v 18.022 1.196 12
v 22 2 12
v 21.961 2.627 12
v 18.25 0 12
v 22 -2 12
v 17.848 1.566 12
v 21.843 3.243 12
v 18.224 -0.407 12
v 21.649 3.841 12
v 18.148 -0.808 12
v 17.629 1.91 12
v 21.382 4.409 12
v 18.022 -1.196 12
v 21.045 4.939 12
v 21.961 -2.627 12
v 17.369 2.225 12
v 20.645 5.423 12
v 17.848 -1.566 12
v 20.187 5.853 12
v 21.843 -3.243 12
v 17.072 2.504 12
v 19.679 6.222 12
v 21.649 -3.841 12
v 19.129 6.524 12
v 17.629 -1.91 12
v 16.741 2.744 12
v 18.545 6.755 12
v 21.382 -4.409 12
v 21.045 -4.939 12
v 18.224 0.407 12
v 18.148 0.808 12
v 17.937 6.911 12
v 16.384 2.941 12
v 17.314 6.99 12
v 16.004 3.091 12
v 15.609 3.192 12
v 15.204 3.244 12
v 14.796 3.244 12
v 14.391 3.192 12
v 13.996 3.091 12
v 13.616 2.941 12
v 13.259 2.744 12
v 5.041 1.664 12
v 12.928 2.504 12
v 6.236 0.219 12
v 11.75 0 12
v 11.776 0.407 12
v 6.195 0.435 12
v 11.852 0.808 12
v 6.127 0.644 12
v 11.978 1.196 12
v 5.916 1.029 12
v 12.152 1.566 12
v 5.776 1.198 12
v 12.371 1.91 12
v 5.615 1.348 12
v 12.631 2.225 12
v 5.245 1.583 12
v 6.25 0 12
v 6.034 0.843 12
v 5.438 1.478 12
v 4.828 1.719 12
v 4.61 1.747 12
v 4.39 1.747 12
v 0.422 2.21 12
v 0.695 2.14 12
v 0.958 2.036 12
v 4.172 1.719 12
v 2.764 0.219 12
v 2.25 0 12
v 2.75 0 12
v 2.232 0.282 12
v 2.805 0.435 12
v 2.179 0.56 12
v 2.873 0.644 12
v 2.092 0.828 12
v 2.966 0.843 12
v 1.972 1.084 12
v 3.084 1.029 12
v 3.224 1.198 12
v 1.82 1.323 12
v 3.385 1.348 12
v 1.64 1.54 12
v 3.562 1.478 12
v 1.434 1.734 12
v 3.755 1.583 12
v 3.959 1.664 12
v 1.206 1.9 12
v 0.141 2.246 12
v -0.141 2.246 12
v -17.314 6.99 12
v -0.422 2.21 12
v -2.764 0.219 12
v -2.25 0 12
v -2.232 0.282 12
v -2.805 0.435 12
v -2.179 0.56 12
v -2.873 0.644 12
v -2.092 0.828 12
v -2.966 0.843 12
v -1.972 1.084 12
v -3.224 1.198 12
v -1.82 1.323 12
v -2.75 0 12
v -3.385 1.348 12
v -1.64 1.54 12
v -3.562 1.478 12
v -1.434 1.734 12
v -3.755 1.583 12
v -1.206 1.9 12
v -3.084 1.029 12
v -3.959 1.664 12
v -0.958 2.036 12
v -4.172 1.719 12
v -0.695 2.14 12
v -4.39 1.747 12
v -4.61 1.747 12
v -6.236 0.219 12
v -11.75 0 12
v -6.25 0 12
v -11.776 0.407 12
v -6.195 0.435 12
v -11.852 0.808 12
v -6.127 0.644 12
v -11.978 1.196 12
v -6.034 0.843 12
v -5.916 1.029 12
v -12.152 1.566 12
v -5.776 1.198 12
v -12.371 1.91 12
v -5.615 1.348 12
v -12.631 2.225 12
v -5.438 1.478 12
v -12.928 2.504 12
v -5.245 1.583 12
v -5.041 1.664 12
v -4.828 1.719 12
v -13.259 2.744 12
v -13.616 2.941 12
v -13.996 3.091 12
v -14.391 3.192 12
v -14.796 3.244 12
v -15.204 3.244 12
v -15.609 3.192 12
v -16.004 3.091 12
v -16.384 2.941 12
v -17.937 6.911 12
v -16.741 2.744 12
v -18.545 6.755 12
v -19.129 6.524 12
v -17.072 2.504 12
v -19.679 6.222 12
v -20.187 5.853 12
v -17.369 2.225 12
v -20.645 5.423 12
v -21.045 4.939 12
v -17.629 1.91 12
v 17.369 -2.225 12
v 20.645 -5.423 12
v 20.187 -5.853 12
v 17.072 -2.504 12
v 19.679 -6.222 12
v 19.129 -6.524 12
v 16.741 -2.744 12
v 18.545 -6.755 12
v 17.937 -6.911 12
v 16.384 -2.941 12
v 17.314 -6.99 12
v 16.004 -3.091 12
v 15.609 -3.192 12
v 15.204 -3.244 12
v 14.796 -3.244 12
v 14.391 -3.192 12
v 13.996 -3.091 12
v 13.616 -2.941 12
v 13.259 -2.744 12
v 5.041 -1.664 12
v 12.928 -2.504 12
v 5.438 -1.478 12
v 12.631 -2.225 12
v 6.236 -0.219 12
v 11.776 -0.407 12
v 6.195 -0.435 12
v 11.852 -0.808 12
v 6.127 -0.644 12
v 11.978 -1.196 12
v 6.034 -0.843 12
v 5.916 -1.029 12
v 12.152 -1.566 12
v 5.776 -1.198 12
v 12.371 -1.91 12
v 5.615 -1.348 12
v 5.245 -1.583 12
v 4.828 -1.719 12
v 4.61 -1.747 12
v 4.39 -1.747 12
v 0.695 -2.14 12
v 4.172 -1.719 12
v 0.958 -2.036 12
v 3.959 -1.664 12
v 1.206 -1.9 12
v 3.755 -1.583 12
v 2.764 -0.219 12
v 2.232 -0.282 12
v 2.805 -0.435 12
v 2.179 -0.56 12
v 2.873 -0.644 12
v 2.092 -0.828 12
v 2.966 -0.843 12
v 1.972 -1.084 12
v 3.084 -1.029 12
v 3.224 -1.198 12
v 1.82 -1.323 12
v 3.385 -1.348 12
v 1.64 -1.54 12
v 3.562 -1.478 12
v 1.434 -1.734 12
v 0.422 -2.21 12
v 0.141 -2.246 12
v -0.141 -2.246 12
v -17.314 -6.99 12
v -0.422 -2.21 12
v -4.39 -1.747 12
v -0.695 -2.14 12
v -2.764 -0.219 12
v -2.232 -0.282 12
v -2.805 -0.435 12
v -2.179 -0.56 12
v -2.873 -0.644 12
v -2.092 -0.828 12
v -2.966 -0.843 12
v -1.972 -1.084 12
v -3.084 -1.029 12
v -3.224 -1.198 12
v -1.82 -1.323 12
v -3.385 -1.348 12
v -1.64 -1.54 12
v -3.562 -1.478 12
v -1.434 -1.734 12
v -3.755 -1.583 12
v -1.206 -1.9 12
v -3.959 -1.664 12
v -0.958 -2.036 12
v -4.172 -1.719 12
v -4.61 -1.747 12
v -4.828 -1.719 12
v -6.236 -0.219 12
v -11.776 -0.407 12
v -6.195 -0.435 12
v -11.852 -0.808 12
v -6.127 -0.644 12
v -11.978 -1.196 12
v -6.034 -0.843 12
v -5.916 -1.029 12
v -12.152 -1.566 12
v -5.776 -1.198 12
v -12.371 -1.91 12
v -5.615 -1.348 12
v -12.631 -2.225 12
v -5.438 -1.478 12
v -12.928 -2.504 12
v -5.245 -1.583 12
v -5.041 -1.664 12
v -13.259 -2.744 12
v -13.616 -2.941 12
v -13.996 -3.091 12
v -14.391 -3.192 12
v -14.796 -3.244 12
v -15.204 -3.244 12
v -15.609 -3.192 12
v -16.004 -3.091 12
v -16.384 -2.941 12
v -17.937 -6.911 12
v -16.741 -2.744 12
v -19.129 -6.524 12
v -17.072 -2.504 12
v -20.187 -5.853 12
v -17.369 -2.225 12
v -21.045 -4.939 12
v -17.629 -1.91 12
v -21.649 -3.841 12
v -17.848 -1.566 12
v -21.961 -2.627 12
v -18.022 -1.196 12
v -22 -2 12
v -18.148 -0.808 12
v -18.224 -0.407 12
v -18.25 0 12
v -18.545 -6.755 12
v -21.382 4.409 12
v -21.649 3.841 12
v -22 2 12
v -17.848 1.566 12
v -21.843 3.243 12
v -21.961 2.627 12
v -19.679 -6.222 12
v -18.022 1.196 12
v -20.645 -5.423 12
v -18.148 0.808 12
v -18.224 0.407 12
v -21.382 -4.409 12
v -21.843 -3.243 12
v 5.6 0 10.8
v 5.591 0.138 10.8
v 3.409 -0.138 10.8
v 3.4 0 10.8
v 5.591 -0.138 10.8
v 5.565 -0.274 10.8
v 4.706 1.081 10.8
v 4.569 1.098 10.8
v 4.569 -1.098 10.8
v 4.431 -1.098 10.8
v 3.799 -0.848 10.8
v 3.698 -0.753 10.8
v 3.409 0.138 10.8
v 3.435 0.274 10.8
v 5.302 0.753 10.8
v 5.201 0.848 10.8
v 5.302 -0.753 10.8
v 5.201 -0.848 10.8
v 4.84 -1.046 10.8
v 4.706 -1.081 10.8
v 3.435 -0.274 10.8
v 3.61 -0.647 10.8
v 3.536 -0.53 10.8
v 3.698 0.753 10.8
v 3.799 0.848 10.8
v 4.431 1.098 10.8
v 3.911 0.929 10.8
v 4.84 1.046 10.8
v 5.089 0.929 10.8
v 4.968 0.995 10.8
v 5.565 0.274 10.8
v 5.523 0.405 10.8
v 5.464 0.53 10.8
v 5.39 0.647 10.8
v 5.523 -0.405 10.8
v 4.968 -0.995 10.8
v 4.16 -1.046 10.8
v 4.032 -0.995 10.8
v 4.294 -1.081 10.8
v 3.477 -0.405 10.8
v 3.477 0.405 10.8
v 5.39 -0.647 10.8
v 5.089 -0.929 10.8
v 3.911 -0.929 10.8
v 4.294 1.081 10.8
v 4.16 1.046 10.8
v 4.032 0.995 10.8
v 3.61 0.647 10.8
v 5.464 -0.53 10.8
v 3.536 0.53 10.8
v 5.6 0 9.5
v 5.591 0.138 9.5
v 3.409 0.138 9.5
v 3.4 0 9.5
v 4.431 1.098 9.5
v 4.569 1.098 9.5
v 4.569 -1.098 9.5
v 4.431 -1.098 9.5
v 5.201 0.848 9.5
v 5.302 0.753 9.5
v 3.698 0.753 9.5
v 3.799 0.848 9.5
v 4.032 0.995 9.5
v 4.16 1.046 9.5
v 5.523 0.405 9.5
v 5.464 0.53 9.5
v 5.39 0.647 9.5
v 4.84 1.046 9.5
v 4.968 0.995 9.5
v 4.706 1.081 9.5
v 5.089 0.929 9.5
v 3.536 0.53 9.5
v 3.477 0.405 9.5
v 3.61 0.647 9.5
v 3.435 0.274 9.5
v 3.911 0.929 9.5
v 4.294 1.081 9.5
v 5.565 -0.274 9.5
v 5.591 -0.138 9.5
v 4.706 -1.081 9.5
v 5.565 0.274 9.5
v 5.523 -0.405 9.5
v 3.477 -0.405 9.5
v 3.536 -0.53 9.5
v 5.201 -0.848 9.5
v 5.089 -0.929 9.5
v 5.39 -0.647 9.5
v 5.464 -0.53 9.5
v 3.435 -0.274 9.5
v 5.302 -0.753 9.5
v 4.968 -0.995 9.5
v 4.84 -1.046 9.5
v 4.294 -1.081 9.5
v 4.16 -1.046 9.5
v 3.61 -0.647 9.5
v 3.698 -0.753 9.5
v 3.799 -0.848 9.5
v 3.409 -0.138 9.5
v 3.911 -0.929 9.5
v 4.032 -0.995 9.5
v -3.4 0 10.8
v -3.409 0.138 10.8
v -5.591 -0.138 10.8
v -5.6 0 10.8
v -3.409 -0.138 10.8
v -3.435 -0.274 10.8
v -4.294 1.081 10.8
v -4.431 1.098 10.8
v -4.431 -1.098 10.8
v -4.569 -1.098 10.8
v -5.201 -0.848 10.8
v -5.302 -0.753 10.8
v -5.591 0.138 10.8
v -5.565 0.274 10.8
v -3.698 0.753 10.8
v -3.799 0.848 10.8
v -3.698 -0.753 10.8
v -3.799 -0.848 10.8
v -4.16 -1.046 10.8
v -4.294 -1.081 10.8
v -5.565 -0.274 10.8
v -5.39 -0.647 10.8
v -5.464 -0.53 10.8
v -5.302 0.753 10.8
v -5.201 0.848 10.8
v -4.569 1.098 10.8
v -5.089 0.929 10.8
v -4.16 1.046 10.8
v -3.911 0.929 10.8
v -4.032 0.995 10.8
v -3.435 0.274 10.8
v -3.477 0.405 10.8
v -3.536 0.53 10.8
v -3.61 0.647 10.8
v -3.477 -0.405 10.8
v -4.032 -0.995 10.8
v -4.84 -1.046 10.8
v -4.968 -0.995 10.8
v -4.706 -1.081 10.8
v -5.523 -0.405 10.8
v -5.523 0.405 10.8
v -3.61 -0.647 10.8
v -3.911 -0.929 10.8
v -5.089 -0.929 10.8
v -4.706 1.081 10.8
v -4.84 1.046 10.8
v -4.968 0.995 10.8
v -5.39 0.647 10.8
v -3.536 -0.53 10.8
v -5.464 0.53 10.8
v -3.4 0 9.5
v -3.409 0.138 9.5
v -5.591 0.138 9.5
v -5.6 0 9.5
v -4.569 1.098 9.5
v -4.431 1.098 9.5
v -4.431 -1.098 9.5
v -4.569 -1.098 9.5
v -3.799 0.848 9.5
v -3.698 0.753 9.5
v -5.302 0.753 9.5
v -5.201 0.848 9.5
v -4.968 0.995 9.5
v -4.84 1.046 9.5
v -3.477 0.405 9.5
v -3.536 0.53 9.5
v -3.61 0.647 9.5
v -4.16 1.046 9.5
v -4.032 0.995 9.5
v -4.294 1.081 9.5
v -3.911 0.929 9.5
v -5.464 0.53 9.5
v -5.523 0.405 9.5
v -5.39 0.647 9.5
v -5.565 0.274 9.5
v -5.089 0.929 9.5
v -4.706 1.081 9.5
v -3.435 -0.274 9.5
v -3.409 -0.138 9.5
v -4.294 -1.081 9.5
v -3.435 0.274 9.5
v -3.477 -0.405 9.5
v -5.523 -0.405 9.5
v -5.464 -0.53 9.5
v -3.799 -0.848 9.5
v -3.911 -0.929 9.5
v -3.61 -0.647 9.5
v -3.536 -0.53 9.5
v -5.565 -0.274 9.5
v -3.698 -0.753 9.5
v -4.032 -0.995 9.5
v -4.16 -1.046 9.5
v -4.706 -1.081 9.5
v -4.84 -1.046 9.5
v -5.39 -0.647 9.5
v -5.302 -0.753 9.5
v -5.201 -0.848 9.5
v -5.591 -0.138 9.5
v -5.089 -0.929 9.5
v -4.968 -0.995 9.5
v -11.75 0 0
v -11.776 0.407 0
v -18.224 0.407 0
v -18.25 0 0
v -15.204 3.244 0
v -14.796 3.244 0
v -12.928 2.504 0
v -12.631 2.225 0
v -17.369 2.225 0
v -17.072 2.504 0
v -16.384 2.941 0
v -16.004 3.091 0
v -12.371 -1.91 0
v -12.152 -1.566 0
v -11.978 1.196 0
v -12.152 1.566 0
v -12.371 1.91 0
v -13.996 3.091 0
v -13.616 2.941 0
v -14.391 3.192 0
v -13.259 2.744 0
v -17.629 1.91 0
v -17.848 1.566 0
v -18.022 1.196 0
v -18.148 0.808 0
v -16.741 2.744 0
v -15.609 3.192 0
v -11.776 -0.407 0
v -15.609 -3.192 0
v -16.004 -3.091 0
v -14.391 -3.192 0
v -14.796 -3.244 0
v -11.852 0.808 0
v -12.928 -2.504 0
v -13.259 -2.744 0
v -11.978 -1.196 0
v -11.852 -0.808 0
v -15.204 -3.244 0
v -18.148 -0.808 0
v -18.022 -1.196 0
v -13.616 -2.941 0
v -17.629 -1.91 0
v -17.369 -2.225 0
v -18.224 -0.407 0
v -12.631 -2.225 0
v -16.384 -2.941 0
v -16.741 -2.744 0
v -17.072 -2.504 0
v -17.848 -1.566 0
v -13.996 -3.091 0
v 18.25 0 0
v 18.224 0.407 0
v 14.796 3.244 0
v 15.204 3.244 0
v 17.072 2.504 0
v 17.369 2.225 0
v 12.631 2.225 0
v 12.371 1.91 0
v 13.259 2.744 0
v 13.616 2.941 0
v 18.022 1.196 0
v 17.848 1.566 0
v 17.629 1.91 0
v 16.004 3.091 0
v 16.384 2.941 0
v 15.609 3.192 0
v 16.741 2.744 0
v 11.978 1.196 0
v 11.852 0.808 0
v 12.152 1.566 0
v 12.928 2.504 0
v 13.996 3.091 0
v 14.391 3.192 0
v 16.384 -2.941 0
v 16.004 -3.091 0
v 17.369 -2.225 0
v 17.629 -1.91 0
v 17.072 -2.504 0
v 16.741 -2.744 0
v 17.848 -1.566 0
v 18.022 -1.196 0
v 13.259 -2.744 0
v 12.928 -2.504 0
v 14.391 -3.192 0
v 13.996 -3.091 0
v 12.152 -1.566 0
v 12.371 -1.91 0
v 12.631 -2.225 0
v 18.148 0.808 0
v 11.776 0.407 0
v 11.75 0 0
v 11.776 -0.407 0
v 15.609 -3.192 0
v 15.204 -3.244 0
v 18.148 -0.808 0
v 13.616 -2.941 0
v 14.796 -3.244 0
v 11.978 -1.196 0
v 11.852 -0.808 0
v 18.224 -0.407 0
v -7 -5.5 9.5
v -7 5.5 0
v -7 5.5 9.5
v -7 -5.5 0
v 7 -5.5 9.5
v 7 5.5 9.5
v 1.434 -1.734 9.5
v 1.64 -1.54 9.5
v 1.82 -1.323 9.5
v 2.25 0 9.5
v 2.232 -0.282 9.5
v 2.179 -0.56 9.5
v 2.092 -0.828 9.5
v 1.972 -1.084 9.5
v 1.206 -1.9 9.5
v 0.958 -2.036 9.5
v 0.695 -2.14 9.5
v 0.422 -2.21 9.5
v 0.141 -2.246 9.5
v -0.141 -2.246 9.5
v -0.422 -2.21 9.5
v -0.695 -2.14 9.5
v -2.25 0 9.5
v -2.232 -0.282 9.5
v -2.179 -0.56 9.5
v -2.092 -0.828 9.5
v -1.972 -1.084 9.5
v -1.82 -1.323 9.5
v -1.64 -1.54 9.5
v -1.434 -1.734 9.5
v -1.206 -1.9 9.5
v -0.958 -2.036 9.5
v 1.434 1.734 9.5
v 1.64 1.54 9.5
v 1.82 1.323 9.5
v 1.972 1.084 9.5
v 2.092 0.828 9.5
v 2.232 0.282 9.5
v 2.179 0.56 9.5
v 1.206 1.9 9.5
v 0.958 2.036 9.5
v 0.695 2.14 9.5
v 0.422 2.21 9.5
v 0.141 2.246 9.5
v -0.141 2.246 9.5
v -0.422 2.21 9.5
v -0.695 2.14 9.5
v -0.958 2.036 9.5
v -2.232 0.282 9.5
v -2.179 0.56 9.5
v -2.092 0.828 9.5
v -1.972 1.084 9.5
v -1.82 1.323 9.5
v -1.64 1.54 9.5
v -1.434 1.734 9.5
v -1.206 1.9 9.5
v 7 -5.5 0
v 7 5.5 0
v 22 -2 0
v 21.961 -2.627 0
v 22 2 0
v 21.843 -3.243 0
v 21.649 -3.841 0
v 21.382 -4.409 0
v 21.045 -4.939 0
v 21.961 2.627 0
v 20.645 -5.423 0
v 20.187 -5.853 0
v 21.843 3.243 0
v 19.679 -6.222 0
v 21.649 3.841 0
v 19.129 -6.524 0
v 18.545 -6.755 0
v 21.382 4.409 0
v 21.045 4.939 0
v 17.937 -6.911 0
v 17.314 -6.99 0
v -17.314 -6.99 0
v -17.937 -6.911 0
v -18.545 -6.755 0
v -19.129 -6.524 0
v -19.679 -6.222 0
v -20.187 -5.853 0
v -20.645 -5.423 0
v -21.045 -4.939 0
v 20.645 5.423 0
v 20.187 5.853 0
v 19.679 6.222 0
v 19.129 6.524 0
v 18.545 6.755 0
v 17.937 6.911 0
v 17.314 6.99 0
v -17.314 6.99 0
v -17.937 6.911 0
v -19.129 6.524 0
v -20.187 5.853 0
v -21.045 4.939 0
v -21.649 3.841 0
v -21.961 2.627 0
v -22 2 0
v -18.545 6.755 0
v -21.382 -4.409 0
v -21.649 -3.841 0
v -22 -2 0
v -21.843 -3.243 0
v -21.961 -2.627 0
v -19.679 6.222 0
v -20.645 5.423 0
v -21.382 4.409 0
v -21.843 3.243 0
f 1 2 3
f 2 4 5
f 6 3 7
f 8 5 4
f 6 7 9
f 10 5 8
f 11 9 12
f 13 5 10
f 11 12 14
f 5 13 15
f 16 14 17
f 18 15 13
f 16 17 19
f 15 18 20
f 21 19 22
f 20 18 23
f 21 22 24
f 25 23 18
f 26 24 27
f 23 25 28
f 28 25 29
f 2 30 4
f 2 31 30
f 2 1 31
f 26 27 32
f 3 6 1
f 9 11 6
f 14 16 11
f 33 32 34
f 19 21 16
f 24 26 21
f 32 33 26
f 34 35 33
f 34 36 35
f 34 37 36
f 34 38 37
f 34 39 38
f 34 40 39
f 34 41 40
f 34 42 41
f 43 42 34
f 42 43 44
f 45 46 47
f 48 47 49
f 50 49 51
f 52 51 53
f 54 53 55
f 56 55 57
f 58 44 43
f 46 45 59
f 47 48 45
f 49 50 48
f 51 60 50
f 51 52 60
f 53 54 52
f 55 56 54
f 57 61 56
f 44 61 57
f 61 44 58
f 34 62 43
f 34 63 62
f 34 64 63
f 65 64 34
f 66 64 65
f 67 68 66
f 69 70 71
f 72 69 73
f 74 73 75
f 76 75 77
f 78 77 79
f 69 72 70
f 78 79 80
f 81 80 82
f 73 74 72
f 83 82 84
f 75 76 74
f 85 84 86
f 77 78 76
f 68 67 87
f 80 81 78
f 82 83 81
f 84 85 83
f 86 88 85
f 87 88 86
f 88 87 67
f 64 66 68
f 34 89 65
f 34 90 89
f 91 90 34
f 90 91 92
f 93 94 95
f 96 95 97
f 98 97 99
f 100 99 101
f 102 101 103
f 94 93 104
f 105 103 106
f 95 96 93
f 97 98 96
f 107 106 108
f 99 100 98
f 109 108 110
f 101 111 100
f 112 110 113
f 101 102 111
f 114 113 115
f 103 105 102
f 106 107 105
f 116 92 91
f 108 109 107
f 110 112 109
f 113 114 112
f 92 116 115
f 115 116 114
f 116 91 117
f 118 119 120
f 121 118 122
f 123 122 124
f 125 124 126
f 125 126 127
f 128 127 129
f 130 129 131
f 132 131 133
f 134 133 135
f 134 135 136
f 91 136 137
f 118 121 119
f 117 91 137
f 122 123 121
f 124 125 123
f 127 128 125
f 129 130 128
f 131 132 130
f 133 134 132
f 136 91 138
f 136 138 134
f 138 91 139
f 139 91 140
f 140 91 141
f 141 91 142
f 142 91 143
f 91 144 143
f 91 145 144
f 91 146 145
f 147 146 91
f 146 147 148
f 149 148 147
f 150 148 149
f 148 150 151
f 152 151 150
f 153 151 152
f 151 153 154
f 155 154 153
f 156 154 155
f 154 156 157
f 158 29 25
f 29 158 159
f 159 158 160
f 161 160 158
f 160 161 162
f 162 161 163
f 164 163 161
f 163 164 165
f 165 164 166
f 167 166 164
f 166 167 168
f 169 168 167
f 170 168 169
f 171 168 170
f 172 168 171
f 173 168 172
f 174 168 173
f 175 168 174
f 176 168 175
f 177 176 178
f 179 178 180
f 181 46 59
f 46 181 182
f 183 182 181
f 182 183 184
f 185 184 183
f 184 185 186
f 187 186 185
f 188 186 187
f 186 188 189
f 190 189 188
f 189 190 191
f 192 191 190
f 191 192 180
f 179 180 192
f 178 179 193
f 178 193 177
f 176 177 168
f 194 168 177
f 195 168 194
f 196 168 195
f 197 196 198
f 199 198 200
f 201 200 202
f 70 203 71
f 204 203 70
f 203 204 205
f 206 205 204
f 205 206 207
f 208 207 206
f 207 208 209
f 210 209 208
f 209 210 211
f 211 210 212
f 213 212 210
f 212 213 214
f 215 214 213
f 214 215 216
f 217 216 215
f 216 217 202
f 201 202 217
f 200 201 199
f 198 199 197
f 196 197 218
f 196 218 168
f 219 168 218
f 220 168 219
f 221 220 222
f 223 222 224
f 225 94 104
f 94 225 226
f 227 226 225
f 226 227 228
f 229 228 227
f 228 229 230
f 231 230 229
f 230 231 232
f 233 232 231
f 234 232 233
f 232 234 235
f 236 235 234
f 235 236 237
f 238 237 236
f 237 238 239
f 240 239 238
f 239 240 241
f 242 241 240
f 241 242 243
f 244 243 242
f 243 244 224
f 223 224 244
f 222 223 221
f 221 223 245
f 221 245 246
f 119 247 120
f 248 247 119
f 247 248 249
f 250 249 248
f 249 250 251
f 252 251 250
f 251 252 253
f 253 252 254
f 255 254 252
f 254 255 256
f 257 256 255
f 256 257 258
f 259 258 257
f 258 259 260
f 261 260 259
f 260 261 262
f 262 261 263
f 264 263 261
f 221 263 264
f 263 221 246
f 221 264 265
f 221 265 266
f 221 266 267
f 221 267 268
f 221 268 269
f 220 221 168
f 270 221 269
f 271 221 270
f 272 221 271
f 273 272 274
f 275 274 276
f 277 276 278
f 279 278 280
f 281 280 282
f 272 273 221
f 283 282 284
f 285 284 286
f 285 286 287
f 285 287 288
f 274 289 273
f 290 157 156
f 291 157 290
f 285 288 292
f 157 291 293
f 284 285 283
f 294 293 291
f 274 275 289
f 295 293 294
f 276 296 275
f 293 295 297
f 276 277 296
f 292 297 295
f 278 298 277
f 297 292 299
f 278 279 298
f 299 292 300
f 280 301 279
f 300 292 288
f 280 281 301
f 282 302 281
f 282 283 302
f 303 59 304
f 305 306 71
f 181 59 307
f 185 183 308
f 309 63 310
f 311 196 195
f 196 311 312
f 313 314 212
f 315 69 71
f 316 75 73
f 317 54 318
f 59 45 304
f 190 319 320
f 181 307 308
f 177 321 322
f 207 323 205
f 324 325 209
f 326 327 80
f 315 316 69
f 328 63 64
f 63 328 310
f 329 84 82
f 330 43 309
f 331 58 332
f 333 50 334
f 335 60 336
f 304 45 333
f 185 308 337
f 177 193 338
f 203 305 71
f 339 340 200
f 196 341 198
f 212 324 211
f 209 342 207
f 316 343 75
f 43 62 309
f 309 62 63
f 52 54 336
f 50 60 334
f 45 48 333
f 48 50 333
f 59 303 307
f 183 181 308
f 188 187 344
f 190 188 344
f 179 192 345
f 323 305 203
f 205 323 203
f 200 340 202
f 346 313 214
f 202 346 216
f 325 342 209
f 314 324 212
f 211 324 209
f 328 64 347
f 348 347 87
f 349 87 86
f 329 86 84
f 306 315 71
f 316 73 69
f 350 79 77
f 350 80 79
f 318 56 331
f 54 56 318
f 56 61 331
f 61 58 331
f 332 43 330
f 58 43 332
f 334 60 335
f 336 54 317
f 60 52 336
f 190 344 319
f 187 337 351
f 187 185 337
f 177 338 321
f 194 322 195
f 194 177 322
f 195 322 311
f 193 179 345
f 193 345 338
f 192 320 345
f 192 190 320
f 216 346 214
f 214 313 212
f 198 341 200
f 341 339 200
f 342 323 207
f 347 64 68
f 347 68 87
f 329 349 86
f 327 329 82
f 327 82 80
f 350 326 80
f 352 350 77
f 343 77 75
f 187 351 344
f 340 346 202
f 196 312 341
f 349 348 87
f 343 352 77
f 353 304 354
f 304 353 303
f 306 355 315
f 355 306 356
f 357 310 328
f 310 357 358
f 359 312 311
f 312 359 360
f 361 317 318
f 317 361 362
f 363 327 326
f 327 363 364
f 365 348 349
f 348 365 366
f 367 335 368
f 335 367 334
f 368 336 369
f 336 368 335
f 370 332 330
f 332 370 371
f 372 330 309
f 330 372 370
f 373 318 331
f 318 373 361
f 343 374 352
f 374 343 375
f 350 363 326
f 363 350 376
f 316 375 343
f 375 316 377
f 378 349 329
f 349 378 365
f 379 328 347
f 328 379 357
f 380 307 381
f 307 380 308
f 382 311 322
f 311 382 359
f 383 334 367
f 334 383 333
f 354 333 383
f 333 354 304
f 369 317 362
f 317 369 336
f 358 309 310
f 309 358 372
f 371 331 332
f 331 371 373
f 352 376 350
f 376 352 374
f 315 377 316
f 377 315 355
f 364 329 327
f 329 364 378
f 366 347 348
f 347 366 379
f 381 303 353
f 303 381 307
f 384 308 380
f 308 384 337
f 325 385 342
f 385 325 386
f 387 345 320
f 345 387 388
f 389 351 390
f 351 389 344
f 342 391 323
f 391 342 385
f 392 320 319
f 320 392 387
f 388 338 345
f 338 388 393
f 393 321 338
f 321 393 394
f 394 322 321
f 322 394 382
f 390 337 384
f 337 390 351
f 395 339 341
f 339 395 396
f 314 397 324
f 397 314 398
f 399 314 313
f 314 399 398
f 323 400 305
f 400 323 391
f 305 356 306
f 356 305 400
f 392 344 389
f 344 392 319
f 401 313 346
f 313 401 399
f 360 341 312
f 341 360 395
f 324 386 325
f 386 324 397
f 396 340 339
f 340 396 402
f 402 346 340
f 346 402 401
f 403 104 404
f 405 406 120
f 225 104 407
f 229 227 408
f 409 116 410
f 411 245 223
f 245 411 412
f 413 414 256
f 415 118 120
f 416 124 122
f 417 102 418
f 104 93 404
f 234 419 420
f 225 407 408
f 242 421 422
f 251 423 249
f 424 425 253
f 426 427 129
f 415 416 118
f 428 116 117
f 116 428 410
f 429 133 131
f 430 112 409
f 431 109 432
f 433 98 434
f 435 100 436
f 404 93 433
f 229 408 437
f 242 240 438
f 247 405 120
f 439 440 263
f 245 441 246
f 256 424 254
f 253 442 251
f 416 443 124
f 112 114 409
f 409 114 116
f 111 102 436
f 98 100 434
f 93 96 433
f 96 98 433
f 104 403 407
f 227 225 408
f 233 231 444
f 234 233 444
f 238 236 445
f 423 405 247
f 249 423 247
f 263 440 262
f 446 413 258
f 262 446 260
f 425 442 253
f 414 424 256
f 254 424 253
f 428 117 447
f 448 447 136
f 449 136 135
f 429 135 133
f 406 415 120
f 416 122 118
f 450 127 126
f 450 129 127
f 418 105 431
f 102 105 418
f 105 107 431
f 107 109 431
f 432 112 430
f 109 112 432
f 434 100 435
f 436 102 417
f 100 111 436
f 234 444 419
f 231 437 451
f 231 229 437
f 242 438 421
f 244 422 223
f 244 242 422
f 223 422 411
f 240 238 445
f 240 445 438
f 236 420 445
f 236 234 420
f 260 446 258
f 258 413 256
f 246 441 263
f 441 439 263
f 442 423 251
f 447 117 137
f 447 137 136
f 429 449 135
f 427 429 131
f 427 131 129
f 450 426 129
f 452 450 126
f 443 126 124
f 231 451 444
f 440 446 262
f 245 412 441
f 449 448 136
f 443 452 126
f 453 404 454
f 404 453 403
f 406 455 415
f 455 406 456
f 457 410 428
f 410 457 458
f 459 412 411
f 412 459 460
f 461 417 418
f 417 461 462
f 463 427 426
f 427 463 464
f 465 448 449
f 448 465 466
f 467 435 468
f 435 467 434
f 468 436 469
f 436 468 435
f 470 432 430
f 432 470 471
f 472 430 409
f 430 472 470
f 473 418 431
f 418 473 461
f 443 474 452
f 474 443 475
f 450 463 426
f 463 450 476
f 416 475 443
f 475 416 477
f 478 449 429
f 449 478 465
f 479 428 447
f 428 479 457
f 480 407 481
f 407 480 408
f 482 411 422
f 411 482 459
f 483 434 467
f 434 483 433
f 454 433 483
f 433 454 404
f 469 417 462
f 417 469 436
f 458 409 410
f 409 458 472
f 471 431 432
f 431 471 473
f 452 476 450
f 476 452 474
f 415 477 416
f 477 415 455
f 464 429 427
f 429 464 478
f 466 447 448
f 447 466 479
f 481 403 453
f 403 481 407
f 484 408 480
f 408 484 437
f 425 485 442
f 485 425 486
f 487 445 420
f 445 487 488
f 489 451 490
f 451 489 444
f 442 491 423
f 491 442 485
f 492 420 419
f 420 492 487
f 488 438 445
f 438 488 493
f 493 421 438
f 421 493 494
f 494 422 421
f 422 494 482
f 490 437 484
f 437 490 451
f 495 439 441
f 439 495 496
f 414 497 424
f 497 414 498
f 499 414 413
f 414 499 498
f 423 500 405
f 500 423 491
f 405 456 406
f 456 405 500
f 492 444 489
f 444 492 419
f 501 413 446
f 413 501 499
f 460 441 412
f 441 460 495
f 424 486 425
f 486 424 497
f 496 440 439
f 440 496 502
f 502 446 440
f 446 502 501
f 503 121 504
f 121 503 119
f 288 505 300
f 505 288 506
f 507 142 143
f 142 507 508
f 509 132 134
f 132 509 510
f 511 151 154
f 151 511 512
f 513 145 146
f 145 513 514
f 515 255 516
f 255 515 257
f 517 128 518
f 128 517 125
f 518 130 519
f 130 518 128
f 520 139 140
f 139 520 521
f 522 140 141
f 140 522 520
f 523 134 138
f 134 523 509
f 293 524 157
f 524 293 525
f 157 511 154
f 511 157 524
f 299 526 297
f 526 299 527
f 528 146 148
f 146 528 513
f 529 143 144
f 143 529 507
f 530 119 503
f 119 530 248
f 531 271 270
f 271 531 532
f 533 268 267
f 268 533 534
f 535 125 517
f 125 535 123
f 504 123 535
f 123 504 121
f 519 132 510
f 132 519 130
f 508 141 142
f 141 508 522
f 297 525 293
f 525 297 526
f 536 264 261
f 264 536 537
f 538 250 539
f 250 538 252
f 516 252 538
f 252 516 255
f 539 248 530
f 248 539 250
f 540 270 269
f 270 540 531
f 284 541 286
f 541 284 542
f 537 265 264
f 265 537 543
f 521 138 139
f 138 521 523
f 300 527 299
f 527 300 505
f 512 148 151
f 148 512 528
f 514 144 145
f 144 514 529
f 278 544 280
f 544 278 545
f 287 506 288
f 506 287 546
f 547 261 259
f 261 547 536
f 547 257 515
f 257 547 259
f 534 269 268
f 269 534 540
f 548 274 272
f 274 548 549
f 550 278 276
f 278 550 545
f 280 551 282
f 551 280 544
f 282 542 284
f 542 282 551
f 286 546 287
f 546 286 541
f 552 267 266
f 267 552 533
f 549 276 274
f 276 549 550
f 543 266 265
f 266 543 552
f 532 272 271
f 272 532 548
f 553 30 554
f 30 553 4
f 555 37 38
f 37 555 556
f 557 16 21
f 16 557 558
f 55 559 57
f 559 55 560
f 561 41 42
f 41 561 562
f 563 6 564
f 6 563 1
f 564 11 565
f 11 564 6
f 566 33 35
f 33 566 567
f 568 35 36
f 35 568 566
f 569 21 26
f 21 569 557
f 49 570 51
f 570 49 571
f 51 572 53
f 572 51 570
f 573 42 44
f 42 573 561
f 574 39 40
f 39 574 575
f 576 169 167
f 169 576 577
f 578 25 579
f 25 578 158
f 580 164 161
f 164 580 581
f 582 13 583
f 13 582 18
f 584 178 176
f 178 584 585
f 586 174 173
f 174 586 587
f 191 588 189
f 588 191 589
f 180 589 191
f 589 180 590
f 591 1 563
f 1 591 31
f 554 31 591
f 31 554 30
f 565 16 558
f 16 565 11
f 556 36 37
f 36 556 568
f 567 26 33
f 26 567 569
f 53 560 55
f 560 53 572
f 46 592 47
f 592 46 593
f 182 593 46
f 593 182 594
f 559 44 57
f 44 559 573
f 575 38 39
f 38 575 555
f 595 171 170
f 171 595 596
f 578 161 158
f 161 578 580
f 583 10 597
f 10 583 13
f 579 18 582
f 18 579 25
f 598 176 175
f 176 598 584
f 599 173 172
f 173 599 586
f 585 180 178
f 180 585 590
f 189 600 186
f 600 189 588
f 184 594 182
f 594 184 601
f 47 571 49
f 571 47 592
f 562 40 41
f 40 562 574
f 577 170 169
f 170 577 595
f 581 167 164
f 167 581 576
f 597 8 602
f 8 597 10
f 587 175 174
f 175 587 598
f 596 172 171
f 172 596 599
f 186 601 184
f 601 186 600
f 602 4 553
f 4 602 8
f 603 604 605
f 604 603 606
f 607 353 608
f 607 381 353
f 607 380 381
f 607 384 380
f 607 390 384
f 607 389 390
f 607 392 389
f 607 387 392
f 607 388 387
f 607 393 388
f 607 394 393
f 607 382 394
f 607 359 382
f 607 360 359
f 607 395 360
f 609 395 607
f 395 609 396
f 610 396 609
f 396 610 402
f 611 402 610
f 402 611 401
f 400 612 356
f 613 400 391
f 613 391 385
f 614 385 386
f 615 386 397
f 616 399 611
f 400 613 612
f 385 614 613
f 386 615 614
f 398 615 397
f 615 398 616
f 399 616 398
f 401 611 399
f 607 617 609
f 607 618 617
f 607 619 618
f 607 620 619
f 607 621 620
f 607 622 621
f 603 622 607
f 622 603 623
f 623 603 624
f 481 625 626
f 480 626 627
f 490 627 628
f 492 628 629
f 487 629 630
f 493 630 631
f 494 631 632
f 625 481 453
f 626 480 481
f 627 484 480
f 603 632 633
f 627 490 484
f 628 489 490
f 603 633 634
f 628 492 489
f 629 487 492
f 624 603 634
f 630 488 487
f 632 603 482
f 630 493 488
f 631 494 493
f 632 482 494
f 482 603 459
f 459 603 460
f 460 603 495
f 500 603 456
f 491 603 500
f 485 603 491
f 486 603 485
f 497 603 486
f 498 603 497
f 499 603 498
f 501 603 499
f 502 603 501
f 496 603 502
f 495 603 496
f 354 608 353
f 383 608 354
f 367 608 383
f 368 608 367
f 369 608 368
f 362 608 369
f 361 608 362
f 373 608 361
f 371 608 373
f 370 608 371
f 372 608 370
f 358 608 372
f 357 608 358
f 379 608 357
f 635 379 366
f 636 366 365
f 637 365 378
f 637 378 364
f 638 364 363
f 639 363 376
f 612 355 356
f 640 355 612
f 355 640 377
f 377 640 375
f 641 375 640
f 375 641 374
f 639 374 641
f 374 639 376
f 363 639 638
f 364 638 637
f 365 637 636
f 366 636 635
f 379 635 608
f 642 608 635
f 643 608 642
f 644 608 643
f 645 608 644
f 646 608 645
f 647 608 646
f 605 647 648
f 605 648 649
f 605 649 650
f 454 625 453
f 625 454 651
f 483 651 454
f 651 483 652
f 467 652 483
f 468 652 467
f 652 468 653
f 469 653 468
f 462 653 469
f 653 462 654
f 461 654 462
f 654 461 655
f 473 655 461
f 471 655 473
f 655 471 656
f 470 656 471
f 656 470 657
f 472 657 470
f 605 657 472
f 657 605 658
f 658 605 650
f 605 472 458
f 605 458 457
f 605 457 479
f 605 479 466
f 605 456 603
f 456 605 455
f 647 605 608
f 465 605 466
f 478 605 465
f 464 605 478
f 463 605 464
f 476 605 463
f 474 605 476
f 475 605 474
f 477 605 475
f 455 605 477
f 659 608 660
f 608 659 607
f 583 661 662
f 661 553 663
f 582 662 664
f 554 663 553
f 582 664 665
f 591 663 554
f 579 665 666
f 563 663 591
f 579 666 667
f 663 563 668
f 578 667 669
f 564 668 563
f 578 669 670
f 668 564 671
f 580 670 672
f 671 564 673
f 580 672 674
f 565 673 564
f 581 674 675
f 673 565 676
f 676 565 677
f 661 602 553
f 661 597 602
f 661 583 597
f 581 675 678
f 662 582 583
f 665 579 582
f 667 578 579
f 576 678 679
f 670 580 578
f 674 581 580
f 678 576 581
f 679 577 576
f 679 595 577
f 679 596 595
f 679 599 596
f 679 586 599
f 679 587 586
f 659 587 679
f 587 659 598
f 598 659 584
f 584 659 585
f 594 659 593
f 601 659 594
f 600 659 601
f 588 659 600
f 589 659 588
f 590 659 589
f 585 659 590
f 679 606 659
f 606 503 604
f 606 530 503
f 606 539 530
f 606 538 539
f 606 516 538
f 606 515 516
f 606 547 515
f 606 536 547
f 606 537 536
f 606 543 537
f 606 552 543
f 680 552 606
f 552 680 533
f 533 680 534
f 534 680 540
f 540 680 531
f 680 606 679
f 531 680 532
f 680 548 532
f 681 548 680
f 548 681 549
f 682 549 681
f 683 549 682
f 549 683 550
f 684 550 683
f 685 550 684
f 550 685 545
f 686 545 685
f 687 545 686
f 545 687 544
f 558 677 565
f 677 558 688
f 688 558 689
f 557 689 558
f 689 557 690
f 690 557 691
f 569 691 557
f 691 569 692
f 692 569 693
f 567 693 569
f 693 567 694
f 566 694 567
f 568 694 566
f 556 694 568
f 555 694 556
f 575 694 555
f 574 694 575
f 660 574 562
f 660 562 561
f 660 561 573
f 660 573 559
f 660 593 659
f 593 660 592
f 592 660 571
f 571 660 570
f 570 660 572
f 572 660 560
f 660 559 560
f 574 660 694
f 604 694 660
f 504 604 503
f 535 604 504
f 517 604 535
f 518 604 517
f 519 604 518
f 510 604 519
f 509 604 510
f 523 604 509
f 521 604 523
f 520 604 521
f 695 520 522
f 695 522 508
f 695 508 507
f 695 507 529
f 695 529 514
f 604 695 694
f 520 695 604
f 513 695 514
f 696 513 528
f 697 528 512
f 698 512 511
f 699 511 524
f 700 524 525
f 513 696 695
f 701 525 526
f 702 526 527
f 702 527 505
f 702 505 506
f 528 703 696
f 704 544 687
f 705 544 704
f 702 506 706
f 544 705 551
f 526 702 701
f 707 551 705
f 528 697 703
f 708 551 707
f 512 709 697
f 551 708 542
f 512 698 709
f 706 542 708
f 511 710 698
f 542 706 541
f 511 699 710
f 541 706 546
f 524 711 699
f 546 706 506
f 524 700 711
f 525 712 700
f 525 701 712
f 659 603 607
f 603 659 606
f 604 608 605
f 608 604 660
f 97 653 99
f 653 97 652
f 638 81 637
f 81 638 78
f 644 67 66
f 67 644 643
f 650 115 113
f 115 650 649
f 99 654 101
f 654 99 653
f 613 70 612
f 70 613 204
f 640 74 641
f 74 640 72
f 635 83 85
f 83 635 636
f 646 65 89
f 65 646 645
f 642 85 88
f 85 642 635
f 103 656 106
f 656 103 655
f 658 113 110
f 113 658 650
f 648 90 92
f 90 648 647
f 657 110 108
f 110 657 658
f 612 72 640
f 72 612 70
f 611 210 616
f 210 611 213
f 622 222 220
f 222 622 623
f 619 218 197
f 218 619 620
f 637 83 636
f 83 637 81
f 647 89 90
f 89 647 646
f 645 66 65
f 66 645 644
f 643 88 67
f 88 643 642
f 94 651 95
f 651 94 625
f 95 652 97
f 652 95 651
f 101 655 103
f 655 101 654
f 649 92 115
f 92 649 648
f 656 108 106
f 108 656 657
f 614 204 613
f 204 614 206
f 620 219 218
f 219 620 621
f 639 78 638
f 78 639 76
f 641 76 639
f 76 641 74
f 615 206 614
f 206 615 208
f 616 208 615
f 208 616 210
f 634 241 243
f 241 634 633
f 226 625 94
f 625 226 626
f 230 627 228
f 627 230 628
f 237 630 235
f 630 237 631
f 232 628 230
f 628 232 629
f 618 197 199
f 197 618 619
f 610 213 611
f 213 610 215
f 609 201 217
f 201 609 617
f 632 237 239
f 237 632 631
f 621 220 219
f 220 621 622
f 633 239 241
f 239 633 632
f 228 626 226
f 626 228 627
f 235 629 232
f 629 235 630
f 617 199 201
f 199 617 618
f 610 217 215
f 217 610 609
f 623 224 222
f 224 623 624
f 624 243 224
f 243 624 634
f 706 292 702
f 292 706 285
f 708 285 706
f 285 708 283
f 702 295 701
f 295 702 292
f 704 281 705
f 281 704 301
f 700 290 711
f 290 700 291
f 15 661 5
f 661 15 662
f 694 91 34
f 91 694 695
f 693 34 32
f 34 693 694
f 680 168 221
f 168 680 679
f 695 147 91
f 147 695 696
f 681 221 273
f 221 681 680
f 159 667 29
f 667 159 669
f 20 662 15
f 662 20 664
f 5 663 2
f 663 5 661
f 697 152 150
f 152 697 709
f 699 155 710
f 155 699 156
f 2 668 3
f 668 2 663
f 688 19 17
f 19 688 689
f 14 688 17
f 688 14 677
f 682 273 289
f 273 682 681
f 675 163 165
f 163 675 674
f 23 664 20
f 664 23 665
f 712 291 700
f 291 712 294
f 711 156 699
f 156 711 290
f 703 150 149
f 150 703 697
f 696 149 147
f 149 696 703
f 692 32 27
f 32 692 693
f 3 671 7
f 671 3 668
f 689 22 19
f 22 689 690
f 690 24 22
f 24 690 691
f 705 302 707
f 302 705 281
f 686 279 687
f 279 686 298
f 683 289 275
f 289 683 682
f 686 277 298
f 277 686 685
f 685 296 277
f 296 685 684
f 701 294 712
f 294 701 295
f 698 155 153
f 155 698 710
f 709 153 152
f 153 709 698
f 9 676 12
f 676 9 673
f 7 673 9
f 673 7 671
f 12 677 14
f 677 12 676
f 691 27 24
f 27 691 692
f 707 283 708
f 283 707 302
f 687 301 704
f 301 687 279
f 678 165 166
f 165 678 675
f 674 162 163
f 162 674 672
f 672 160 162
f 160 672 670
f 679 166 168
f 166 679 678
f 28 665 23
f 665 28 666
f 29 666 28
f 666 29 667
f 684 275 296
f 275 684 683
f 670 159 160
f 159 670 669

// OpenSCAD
$fn = 50;


difference() {
	union() {
		hull() {
			translate(v = [-17.0000000000, 2.0000000000, 0]) {
				cylinder(h = 12, r = 5);
			}
			translate(v = [17.0000000000, 2.0000000000, 0]) {
				cylinder(h = 12, r = 5);
			}
			translate(v = [-17.0000000000, -2.0000000000, 0]) {
				cylinder(h = 12, r = 5);
			}
			translate(v = [17.0000000000, -2.0000000000, 0]) {
				cylinder(h = 12, r = 5);
			}
		}
	}
	union() {
		translate(v = [4.5000000000, 0, 12]) {
			rotate(a = [0, 0, 0]) {
				difference() {
					union() {
						translate(v = [0, 0, -4.0000000000]) {
							cylinder(h = 4, r = 0.8500000000);
						}
						translate(v = [0, 0, -1.2000000000]) {
							cylinder(h = 1.2000000000, r1 = 1.1000000000, r2 = 1.7500000000);
						}
						translate(v = [0, 0, -4.0000000000]) {
							cylinder(h = 4, r = 1.1000000000);
						}
						translate(v = [0, 0, -4.0000000000]) {
							cylinder(h = 4, r = 0.8500000000);
						}
					}
					union();
				}
			}
		}
		translate(v = [-4.5000000000, 0, 12]) {
			rotate(a = [0, 0, 0]) {
				difference() {
					union() {
						translate(v = [0, 0, -4.0000000000]) {
							cylinder(h = 4, r = 0.8500000000);
						}
						translate(v = [0, 0, -1.2000000000]) {
							cylinder(h = 1.2000000000, r1 = 1.1000000000, r2 = 1.7500000000);
						}
						translate(v = [0, 0, -4.0000000000]) {
							cylinder(h = 4, r = 1.1000000000);
						}
						translate(v = [0, 0, -4.0000000000]) {
							cylinder(h = 4, r = 0.8500000000);
						}
					}
					union();
				}
			}
		}
		translate(v = [-15.0000000000, 0.0000000000, -100.0000000000]) {
			cylinder(h = 200, r = 3.2500000000);
		}
		translate(v = [15.0000000000, 0.0000000000, -100.0000000000]) {
			cylinder(h = 200, r = 3.2500000000);
		}
		translate(v = [15.0000000000, 0.0000000000, -100.0000000000]) {
			cylinder(h = 200, r = 3.2500000000);
		}
		translate(v = [-15.0000000000, 0.0000000000, -100.0000000000]) {
			cylinder(h = 200, r = 1.8000000000);
		}
		translate(v = [15.0000000000, 0.0000000000, -100.0000000000]) {
			cylinder(h = 200, r = 1.8000000000);
		}
		translate(v = [-15.0000000000, 0.0000000000, -100.0000000000]) {
			cylinder(h = 200, r = 1.8000000000);
		}
		translate(v = [15.0000000000, 0.0000000000, -100.0000000000]) {
			cylinder(h = 200, r = 1.8000000000);
		}
		translate(v = [-15.0000000000, 0.0000000000, -100.0000000000]) {
			cylinder(h = 200, r = 1.8000000000);
		}
		translate(v = [15.0000000000, 0.0000000000, -100.0000000000]) {
			cylinder(h = 200, r = 1.8000000000);
		}
		#translate(v = [-7.0000000000, -5.5000000000, 0]) {
			cube(size = [14, 11, 9.5000000000]);
		}
		cylinder(h = 12, r = 2.2500000000);
	}
}
